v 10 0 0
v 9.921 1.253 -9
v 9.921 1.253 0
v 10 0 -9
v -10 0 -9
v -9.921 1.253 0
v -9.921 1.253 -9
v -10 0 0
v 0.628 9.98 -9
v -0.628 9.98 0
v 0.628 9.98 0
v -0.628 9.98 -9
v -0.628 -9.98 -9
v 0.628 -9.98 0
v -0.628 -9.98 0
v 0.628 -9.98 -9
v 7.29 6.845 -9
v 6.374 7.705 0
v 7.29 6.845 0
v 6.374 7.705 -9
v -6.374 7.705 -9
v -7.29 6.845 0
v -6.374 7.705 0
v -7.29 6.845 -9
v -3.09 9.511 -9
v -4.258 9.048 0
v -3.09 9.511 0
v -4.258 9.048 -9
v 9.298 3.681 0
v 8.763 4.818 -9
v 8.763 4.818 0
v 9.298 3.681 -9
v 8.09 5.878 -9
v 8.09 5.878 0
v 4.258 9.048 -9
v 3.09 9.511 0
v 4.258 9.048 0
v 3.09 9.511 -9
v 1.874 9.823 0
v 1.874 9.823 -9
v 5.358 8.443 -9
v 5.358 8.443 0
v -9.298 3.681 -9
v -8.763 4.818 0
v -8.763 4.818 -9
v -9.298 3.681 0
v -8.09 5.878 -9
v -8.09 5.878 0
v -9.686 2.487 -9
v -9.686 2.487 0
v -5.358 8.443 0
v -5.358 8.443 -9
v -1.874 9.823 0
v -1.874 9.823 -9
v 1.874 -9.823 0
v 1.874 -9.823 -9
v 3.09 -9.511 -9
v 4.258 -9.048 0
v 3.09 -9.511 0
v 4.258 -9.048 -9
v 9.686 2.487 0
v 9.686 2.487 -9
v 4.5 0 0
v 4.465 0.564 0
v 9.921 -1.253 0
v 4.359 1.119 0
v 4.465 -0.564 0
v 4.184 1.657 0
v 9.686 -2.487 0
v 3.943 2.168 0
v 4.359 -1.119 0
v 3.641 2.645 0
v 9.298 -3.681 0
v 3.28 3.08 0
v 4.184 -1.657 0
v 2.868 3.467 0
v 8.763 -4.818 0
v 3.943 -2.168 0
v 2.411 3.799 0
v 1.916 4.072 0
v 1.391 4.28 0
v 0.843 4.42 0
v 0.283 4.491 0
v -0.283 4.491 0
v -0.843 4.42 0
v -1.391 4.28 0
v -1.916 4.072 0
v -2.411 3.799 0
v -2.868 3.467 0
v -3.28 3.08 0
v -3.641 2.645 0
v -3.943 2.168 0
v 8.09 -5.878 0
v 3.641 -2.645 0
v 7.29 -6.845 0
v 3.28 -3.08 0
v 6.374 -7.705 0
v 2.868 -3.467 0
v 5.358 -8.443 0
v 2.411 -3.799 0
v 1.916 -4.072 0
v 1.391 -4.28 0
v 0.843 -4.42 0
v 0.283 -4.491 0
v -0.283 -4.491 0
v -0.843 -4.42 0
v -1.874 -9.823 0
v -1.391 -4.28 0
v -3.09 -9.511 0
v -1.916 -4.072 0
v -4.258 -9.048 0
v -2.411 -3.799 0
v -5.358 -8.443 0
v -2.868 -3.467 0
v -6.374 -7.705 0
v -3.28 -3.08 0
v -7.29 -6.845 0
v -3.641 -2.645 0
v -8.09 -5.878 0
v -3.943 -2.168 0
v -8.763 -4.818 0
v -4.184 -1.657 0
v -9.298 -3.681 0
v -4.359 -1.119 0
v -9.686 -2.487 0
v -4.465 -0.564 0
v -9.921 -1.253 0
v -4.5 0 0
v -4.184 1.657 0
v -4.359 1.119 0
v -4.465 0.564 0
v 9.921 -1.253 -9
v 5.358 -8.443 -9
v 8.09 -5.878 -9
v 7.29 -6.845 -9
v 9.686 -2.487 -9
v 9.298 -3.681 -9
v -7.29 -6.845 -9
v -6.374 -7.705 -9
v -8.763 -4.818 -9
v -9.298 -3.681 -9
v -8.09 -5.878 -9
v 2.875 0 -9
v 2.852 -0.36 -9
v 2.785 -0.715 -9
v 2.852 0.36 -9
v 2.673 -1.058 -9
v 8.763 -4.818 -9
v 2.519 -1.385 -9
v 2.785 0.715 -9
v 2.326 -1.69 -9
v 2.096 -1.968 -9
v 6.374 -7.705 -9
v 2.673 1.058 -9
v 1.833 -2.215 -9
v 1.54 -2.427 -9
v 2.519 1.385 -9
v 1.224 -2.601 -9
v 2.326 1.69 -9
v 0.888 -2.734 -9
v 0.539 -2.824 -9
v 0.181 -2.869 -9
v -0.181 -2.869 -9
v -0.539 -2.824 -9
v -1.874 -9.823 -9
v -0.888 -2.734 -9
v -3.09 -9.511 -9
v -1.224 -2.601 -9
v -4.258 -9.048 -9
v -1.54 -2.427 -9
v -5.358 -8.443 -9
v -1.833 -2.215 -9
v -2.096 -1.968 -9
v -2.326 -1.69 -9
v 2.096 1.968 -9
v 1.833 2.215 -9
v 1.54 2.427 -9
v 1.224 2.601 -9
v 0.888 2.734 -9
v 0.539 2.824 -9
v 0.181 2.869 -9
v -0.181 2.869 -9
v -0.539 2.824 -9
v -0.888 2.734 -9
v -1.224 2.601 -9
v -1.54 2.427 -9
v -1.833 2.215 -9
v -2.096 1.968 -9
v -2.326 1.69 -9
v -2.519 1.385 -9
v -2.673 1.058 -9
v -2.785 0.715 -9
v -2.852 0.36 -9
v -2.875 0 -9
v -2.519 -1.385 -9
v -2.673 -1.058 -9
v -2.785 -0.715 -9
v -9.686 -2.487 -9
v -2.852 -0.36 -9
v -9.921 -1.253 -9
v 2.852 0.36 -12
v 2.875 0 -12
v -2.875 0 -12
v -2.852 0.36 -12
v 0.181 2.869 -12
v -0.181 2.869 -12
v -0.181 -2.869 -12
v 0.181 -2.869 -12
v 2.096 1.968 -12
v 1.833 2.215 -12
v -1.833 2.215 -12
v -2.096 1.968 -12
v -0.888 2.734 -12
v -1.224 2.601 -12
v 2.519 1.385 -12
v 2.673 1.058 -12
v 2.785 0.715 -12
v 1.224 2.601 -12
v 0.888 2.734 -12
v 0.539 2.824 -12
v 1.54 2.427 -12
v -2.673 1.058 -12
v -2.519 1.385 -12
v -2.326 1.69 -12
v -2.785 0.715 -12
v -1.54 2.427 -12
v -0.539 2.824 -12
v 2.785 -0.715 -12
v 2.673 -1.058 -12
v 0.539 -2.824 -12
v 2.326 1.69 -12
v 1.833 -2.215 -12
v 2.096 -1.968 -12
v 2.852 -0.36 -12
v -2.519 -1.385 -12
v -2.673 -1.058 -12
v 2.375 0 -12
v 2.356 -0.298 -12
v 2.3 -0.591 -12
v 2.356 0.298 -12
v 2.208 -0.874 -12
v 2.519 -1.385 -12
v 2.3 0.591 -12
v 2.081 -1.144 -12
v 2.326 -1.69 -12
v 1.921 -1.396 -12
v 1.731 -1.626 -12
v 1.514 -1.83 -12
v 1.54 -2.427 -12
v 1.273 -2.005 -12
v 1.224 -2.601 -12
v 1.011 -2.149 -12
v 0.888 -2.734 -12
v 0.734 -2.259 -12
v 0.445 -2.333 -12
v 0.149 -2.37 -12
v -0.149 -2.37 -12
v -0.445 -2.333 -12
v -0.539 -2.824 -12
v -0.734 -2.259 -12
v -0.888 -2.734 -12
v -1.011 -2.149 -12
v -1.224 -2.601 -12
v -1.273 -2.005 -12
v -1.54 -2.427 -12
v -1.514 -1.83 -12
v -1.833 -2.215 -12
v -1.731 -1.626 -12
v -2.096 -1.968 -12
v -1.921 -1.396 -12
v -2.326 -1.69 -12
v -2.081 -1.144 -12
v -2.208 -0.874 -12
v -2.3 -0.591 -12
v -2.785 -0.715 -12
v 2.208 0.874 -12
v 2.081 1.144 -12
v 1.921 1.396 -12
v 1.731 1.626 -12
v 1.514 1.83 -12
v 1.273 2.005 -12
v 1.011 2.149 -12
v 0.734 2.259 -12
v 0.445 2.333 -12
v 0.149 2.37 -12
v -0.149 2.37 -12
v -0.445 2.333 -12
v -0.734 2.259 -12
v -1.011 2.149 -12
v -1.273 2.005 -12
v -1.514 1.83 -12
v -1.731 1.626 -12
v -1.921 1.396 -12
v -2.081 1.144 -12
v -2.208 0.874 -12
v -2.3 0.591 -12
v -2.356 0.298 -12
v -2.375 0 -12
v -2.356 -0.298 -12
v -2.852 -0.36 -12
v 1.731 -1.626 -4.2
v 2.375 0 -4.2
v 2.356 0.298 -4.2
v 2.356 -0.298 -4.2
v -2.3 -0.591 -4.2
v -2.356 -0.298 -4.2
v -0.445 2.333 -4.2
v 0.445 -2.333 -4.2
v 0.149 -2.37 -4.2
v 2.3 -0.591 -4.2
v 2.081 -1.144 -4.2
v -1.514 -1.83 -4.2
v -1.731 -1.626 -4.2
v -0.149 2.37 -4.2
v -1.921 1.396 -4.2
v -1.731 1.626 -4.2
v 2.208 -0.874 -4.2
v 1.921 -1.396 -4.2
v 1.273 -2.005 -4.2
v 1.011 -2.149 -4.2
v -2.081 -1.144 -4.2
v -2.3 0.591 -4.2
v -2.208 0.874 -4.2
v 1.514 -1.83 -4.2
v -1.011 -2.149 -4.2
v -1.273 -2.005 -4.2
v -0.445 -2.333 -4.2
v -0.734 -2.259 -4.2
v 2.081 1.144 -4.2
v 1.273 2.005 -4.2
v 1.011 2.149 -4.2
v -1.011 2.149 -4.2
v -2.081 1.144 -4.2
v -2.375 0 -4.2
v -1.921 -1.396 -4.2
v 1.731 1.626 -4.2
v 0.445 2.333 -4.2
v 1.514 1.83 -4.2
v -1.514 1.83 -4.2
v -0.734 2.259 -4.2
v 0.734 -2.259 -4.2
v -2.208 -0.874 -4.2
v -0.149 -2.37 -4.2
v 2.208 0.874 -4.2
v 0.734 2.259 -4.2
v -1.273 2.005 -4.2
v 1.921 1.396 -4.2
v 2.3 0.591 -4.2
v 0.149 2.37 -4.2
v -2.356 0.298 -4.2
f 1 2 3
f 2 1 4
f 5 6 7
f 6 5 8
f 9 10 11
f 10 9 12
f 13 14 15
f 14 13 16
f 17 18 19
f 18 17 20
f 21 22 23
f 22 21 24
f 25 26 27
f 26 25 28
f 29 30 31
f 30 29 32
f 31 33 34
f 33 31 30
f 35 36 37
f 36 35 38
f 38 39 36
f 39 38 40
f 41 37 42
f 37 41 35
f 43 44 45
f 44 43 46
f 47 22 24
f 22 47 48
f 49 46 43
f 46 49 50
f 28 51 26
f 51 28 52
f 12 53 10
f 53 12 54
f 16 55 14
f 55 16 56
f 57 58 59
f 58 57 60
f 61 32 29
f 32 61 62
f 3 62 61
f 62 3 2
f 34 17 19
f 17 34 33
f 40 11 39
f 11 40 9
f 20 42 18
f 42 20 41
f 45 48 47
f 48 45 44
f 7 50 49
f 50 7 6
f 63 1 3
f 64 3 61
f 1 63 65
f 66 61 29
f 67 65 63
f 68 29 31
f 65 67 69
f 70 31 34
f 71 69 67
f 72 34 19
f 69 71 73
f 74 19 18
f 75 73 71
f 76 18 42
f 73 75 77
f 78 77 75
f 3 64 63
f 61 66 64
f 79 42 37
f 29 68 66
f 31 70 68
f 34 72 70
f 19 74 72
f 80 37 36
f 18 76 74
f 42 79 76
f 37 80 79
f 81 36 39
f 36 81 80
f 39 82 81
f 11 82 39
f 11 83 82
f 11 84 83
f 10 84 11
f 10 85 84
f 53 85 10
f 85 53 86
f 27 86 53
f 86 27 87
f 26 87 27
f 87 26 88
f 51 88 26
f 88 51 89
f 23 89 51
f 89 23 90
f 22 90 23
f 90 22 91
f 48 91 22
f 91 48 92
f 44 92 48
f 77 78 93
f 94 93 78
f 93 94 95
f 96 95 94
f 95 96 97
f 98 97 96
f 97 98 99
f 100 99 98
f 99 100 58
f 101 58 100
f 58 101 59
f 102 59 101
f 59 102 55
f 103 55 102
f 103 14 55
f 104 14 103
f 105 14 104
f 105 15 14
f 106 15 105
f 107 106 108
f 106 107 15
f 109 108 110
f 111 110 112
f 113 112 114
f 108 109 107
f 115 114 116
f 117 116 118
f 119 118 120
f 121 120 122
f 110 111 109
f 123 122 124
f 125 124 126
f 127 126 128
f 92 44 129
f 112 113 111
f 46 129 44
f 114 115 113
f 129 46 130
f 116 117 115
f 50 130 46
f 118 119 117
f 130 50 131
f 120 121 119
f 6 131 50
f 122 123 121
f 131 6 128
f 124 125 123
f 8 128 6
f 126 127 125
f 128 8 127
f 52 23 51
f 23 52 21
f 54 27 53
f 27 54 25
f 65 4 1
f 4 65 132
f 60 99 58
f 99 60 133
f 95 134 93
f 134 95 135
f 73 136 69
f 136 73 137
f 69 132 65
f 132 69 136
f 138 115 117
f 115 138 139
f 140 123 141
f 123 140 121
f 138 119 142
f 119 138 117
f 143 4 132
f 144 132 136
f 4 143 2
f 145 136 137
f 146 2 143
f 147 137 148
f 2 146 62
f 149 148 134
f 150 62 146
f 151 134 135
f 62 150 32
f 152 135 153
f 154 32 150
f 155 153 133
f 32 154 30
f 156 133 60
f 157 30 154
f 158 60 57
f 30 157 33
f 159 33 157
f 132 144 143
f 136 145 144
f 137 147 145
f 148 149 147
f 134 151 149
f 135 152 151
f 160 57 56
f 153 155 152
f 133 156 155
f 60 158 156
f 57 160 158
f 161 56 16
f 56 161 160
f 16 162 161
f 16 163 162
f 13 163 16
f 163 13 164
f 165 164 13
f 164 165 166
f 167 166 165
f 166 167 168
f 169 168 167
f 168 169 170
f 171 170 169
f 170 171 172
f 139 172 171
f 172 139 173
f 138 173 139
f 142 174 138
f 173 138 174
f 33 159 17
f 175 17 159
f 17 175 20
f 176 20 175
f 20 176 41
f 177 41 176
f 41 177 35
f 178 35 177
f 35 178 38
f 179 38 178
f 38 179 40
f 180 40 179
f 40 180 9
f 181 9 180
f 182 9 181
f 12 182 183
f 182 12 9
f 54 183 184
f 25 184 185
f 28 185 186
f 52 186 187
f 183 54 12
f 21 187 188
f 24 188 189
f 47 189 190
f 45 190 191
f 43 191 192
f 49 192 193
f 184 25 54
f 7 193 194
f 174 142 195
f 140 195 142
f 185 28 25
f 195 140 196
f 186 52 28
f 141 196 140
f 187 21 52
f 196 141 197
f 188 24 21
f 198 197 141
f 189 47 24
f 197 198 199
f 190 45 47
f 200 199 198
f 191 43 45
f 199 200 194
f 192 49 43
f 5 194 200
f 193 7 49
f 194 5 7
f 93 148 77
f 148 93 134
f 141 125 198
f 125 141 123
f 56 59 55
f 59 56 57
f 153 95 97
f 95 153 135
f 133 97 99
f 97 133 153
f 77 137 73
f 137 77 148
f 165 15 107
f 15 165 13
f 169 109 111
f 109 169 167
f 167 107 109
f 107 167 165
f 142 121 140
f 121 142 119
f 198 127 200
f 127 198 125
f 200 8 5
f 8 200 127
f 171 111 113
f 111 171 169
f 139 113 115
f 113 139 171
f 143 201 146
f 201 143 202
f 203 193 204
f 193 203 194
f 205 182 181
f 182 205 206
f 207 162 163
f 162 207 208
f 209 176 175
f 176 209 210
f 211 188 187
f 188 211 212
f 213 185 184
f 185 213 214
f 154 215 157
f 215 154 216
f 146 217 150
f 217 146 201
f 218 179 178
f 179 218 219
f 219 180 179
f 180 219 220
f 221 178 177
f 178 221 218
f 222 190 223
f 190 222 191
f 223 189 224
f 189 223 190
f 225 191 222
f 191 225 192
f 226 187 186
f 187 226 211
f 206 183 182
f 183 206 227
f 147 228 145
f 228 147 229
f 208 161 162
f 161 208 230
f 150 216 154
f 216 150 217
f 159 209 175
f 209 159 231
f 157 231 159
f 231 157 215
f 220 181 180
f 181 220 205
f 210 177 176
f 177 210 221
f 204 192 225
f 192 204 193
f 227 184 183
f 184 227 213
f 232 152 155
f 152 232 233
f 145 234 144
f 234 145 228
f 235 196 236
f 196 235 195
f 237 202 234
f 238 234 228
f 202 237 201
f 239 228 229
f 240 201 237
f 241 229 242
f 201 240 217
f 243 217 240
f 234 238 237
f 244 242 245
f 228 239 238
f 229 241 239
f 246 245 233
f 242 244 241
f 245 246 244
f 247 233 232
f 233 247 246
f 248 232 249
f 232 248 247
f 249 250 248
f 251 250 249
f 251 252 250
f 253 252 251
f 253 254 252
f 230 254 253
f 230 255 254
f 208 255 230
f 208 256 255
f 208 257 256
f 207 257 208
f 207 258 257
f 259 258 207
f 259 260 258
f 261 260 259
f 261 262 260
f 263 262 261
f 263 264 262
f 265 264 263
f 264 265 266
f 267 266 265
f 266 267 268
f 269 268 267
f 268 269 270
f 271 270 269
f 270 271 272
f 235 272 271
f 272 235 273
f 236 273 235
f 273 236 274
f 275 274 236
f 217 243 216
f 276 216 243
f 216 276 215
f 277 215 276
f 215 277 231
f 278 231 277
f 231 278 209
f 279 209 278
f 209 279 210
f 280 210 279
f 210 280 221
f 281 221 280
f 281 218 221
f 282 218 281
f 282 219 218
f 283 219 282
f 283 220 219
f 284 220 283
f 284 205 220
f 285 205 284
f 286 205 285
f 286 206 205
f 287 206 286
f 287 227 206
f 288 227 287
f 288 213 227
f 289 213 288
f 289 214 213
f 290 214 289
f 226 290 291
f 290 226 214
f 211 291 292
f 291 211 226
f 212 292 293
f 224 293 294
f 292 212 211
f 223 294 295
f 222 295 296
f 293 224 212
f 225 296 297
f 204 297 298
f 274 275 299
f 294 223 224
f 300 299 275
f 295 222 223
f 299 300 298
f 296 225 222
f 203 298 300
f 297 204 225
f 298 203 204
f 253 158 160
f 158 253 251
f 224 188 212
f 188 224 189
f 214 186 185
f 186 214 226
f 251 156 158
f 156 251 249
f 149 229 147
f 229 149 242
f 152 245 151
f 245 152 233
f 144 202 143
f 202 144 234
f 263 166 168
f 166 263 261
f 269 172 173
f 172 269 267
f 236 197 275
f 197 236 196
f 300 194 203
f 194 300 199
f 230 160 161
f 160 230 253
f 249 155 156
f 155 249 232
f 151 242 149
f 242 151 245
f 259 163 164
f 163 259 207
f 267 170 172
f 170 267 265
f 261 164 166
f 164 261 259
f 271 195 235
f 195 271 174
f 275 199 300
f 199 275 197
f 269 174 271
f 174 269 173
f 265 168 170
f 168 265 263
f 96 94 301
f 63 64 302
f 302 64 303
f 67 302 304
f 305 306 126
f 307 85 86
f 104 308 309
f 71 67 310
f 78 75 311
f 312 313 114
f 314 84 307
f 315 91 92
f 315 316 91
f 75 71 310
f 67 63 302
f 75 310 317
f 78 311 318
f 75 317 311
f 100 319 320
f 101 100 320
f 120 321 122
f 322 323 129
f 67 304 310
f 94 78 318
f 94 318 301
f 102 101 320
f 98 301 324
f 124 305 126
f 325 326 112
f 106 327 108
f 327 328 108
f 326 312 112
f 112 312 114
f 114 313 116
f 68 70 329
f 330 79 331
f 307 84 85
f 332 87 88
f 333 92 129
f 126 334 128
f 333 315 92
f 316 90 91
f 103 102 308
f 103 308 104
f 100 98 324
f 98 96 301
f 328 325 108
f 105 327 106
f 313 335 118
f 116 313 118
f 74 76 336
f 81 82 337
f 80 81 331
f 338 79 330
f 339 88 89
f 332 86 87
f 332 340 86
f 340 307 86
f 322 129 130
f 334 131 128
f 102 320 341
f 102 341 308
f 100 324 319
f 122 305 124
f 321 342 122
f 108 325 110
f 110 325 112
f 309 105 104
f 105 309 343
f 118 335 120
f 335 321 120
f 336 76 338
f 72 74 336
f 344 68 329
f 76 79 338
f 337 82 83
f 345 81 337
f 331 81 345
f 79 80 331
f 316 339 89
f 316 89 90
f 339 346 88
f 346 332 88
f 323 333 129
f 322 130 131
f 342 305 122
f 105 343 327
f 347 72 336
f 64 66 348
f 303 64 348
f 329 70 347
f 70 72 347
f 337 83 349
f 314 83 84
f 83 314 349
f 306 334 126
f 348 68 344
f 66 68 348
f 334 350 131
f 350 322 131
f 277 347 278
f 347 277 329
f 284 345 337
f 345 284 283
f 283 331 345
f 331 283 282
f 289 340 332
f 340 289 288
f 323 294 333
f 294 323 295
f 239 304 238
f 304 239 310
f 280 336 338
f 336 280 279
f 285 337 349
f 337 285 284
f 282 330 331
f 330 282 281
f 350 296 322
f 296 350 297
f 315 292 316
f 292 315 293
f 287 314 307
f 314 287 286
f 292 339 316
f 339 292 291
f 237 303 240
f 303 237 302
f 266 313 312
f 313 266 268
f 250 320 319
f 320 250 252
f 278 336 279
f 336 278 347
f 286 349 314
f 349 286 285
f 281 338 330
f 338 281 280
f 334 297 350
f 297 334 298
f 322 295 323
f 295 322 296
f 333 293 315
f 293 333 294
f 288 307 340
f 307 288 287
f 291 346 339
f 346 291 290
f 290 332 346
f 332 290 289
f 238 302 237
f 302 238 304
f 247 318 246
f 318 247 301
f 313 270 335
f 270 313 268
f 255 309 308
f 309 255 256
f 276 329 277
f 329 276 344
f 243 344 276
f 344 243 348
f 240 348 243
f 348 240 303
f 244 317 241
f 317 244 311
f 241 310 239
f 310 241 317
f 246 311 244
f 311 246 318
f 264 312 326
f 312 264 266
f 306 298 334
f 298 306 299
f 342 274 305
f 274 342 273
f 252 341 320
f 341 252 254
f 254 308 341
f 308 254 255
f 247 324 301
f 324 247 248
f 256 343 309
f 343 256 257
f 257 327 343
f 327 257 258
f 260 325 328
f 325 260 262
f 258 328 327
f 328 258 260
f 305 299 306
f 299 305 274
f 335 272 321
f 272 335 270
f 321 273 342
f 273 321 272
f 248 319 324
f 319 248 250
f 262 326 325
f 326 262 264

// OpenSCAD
$fn = 50;

difference() {
	union() {
		translate(v = [0, 0, -9.0]) {
			cylinder(h = 9, r = 10.0);
		}
		#translate(v = [0, 0, -12.0]) {
			cylinder(h = 12, r = 2.875);
		}
	}
	union() {
		translate(v = [0, 0, 0]) {
			rotate(a = [0, 0, 0]) {
				difference() {
					union() {
						translate(v = [0, 0, -12.0]) {
							cylinder(h = 12, r = 2.25);
						}
						translate(v = [0, 0, -4.2]) {
							cylinder(h = 4.2, r1 = 2.375, r2 = 4.5);
						}
						translate(v = [0, 0, -12.0]) {
							cylinder(h = 12, r = 2.375);
						}
						translate(v = [0, 0, -12.0]) {
							cylinder(h = 12, r = 2.25);
						}
					}
					union();
				}
			}
		}
	}
}
